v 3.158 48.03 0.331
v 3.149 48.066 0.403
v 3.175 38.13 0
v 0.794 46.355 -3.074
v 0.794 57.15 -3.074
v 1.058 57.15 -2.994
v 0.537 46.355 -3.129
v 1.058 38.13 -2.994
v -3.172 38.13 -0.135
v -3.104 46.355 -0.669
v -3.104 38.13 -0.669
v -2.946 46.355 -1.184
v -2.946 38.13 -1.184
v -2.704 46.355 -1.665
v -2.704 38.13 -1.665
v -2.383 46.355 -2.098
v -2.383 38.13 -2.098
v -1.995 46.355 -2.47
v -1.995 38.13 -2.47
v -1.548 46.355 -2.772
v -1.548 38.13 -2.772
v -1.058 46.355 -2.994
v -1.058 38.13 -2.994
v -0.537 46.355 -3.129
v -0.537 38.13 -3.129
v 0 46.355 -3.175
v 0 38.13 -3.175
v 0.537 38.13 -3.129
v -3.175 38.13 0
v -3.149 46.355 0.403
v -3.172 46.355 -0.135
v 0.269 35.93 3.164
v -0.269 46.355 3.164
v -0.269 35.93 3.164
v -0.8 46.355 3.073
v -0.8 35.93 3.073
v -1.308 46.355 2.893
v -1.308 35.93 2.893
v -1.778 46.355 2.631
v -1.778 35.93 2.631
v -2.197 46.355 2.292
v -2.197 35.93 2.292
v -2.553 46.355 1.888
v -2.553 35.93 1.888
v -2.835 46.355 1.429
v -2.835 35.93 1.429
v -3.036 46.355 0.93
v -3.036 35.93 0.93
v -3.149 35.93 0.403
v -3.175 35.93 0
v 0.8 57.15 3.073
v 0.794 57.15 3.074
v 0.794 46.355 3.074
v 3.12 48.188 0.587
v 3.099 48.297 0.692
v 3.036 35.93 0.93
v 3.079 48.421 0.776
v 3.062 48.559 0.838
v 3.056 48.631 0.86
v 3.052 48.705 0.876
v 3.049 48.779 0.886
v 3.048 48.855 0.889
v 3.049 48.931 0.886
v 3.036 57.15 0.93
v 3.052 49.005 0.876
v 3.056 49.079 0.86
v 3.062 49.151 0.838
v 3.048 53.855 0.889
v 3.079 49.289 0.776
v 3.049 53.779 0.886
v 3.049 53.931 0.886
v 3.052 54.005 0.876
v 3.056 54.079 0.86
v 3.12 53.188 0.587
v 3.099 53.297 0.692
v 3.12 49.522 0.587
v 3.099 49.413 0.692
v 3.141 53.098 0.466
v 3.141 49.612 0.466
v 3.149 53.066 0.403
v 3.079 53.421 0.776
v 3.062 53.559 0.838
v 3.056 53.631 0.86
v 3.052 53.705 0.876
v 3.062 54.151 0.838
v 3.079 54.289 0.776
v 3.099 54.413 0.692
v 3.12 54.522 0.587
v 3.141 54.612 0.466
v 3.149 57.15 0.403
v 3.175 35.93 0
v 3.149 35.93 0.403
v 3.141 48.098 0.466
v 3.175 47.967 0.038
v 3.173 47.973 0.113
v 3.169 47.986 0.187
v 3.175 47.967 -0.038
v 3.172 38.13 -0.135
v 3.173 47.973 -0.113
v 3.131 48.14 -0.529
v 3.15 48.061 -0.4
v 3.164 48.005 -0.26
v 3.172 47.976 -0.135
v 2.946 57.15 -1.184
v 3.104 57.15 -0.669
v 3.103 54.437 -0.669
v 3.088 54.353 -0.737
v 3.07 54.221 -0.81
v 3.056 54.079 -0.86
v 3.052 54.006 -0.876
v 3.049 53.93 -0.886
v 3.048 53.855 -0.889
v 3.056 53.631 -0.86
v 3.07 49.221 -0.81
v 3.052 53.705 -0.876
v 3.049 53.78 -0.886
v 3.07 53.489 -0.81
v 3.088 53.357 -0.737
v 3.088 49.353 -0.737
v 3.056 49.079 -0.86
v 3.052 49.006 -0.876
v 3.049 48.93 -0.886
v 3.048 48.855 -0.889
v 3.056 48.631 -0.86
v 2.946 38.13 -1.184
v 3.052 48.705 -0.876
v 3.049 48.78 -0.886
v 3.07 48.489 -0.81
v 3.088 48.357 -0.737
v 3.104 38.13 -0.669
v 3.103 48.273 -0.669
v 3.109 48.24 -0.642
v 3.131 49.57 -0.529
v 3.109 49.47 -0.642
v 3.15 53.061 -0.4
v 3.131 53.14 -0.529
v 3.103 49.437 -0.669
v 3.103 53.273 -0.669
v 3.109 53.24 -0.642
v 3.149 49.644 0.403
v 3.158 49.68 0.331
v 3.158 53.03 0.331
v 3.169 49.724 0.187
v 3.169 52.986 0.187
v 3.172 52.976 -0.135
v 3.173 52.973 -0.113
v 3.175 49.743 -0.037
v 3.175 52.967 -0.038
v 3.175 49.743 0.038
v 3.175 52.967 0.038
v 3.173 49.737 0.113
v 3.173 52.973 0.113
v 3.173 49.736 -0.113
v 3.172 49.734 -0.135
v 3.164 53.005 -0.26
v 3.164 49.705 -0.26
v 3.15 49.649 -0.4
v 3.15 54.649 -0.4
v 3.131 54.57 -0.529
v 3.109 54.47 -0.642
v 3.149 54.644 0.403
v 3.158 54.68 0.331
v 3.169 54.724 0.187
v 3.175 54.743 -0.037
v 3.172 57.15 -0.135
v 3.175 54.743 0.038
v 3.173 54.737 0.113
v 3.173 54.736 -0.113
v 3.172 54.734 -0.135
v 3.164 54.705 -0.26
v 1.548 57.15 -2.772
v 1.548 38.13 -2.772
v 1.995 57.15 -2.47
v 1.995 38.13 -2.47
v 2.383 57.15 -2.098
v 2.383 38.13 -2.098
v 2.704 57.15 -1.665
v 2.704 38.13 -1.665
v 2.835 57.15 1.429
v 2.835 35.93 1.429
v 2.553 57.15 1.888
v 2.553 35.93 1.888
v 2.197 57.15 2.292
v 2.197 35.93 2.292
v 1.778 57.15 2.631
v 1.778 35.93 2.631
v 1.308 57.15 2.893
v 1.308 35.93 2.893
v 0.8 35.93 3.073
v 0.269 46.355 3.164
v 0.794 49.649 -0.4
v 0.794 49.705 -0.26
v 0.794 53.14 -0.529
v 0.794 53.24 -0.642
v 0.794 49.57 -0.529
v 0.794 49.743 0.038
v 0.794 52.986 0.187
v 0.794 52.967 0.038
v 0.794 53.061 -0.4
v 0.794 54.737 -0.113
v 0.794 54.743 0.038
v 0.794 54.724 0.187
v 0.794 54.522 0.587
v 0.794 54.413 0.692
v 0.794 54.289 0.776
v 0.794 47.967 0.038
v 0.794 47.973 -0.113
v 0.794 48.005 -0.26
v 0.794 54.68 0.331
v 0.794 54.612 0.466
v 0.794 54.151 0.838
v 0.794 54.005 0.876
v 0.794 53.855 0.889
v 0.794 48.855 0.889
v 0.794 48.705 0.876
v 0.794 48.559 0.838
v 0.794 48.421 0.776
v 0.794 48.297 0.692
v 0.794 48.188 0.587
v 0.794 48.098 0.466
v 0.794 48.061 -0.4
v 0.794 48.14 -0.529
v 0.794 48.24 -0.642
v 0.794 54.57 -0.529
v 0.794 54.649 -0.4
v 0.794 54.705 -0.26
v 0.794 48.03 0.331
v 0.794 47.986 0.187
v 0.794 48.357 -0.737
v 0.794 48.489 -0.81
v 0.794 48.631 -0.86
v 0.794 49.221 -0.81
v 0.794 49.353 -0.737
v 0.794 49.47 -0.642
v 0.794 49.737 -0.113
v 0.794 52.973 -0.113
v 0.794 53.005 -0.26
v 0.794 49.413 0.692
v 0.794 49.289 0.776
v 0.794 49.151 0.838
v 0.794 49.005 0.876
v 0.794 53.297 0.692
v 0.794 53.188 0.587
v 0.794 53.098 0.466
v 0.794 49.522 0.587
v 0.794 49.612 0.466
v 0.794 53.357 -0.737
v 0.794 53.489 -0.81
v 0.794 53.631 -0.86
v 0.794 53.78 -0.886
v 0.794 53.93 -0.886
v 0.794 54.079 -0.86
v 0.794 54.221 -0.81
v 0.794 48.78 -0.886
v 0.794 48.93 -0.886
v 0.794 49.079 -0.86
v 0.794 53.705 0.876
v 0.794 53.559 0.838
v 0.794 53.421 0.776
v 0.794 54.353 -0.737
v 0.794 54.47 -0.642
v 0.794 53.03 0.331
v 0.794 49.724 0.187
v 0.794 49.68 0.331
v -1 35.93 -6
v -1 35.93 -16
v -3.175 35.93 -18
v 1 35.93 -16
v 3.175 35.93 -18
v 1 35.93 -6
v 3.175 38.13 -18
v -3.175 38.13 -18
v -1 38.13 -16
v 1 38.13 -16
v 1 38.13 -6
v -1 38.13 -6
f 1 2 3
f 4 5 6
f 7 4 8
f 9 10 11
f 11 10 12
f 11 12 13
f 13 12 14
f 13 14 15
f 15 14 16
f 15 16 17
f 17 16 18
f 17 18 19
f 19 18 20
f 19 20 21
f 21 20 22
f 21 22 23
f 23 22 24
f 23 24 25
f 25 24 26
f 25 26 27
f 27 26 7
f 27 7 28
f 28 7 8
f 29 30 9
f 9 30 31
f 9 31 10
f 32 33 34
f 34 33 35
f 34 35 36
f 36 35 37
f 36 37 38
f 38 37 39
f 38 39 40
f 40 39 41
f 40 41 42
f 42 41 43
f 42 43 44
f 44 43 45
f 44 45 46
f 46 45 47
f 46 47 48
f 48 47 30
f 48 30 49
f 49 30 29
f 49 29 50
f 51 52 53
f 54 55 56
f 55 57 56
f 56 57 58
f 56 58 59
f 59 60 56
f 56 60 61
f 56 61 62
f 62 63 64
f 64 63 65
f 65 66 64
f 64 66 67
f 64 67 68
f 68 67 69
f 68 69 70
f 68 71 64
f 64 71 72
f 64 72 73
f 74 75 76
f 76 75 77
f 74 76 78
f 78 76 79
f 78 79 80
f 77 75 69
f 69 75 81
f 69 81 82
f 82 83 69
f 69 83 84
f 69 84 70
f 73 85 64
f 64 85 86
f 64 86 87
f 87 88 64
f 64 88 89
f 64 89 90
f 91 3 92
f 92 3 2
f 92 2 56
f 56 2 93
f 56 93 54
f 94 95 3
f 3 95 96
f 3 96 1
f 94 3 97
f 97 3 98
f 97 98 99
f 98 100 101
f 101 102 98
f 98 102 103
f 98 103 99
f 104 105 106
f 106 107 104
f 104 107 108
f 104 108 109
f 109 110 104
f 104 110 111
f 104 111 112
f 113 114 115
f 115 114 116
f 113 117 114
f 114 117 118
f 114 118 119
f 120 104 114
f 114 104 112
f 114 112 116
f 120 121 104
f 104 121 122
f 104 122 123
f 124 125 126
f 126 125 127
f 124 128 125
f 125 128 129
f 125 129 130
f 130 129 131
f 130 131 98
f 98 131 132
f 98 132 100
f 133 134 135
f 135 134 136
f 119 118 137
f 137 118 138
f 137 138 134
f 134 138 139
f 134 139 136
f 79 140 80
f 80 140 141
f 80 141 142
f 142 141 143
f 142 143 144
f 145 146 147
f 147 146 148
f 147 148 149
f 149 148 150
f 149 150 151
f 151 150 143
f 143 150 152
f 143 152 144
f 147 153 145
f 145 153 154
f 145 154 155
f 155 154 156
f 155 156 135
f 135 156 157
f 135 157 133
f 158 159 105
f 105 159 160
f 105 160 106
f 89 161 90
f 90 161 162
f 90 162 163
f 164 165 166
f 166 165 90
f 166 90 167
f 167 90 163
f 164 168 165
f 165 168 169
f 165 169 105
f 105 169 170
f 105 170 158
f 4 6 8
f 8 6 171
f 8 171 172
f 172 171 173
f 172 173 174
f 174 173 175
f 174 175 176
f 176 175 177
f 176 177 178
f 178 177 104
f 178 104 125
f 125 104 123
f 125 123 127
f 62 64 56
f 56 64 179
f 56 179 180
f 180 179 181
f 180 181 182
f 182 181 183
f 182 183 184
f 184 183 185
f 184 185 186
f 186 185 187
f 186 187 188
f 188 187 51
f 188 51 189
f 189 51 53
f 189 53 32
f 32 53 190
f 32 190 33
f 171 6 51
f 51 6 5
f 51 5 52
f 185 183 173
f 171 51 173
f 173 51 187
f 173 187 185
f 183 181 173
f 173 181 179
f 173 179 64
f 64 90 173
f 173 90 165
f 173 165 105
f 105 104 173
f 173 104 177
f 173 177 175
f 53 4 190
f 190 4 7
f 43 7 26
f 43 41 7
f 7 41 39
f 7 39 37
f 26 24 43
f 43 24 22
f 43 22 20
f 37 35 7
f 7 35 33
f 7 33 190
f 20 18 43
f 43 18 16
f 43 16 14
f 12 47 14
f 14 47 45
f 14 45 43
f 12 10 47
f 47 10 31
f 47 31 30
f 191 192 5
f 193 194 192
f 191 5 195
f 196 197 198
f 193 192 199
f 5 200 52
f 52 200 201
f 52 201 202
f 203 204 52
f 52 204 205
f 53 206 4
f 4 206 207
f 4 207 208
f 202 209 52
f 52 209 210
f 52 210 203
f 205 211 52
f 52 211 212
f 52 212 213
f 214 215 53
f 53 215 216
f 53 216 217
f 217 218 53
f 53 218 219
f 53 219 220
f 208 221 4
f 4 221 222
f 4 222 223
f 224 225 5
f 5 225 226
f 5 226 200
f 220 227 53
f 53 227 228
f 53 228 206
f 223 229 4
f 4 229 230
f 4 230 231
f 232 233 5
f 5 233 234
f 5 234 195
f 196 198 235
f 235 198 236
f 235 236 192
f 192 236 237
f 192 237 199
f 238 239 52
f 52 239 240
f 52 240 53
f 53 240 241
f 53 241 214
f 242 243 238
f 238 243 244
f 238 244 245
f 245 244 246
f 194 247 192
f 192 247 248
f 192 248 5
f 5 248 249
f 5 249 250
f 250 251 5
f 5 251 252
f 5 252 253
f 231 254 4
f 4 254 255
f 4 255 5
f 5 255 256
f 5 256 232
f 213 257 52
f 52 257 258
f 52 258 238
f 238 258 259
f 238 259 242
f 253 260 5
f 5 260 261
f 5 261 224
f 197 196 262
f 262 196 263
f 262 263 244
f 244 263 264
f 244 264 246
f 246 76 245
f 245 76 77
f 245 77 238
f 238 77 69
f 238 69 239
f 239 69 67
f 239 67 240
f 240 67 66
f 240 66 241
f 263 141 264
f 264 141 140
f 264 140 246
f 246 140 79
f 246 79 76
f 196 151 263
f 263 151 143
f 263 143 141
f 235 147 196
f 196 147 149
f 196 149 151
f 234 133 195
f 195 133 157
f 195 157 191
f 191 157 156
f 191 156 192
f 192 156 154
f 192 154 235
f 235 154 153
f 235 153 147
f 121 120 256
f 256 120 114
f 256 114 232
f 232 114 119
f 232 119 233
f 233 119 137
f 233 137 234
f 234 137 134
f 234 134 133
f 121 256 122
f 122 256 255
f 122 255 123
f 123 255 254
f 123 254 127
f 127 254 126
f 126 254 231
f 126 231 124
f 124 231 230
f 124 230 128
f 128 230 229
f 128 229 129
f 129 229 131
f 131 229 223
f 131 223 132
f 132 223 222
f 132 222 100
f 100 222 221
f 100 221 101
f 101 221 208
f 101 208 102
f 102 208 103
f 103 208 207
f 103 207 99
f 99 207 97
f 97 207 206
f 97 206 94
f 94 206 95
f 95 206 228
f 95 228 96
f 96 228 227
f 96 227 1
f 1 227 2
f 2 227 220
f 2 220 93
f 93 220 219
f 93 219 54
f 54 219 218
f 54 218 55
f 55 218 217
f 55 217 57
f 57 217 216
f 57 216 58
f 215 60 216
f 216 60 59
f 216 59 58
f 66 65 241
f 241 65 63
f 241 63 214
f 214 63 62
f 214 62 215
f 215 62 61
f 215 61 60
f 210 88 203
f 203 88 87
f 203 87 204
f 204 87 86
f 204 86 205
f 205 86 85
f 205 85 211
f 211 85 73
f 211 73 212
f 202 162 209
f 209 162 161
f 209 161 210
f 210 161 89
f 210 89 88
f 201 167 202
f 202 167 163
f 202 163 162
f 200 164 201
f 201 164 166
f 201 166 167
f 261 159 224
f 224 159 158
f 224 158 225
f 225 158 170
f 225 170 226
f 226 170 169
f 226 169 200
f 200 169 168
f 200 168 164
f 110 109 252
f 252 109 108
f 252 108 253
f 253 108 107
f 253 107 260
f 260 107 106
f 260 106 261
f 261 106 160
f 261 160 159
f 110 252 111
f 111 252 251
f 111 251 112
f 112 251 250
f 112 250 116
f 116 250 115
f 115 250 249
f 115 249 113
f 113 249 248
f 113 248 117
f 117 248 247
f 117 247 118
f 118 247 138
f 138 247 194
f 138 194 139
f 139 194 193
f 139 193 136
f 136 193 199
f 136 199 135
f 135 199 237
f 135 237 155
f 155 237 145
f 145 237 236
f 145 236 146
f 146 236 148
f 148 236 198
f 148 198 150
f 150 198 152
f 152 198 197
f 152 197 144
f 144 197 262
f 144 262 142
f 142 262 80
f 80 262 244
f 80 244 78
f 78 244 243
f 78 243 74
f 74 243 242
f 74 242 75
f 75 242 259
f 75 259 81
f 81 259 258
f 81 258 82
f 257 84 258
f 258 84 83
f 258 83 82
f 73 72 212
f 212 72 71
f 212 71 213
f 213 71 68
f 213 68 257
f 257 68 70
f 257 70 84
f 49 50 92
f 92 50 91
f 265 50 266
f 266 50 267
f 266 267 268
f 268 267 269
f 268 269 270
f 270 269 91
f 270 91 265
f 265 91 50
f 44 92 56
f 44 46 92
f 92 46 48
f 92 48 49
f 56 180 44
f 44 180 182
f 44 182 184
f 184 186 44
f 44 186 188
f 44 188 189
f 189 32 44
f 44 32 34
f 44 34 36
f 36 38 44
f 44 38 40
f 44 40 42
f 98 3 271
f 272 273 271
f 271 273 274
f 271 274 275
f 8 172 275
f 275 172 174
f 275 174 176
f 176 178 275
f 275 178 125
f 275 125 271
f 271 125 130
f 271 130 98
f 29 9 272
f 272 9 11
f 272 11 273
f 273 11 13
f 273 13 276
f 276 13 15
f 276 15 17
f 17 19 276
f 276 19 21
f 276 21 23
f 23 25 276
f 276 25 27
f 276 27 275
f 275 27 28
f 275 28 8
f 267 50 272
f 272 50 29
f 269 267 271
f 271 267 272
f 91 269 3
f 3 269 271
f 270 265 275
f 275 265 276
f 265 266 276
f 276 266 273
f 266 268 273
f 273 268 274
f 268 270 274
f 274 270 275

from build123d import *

# Parameters (mm, degrees)
SKETCH_1_R          = 3.175
EXTRUDE_1_DEPTH     = 57.15
CUT_EXTRUDE_1_DEPTH = 10.795
SKETCH_3_R          = 0.889
CUT_EXTRUDE_2_DEPTH = 10.795
SKETCH_4_R          = 3.175
CUT_EXTRUDE_3_DEPTH = 37.03
SKETCH_5_W          = 2
SKETCH_5_H          = 10
EXTRUDE_2_DEPTH     = 1.1


with BuildPart() as part:
    # 草图1 → 凸台-拉伸1 (new body)
    with BuildSketch(Plane(origin=(0, 0, 0), x_dir=(1, 0, 0), z_dir=(0, 1, 0))):
        Circle(SKETCH_1_R)
    extrude(amount=EXTRUDE_1_DEPTH)

    # 草图2 → 切除-拉伸1 (cut)
    with BuildSketch(Plane(origin=(0, 57.15, 0), x_dir=(1, 0, 0), z_dir=(0, 1, 0))):
        Polygon((-0.794, 3.175), (0.794, 3.175), (0.794, -3.175), (-3.175, -3.175), (-3.175, 3.175), align=None)
    extrude(amount=-CUT_EXTRUDE_1_DEPTH, mode=Mode.SUBTRACT)

    # 草图3 → 切除-拉伸2 (cut)
    with BuildSketch(Plane.ZY.offset(-0.794)):
        with Locations((0, 53.855)):
            Circle(SKETCH_3_R)
        with Locations((0, 48.855)):
            Circle(SKETCH_3_R)
    extrude(amount=-CUT_EXTRUDE_2_DEPTH, mode=Mode.SUBTRACT)

    # 草图4 → 切除-拉伸3 (cut)
    with BuildSketch(Plane.XZ):
        Circle(SKETCH_4_R)
    extrude(amount=-CUT_EXTRUDE_3_DEPTH, mode=Mode.SUBTRACT)

    # 草图5 → 凸台-拉伸2 (add, symmetric)
    with BuildSketch(Plane.XZ.offset(-37.03)):
        with BuildLine():
            Line((3.175, 0), (3.175, -18))
            Line((3.175, -18), (-3.175, -18))
            Line((-3.175, -18), (-3.175, 0))
            ThreePointArc((-3.175, 0), (0, 3.175), (3.175, 0))
        make_face()
        with Locations((0, -11)):
            Rectangle(SKETCH_5_W, SKETCH_5_H, mode=Mode.SUBTRACT)
    extrude(amount=EXTRUDE_2_DEPTH, both=True)


solid = part.part
